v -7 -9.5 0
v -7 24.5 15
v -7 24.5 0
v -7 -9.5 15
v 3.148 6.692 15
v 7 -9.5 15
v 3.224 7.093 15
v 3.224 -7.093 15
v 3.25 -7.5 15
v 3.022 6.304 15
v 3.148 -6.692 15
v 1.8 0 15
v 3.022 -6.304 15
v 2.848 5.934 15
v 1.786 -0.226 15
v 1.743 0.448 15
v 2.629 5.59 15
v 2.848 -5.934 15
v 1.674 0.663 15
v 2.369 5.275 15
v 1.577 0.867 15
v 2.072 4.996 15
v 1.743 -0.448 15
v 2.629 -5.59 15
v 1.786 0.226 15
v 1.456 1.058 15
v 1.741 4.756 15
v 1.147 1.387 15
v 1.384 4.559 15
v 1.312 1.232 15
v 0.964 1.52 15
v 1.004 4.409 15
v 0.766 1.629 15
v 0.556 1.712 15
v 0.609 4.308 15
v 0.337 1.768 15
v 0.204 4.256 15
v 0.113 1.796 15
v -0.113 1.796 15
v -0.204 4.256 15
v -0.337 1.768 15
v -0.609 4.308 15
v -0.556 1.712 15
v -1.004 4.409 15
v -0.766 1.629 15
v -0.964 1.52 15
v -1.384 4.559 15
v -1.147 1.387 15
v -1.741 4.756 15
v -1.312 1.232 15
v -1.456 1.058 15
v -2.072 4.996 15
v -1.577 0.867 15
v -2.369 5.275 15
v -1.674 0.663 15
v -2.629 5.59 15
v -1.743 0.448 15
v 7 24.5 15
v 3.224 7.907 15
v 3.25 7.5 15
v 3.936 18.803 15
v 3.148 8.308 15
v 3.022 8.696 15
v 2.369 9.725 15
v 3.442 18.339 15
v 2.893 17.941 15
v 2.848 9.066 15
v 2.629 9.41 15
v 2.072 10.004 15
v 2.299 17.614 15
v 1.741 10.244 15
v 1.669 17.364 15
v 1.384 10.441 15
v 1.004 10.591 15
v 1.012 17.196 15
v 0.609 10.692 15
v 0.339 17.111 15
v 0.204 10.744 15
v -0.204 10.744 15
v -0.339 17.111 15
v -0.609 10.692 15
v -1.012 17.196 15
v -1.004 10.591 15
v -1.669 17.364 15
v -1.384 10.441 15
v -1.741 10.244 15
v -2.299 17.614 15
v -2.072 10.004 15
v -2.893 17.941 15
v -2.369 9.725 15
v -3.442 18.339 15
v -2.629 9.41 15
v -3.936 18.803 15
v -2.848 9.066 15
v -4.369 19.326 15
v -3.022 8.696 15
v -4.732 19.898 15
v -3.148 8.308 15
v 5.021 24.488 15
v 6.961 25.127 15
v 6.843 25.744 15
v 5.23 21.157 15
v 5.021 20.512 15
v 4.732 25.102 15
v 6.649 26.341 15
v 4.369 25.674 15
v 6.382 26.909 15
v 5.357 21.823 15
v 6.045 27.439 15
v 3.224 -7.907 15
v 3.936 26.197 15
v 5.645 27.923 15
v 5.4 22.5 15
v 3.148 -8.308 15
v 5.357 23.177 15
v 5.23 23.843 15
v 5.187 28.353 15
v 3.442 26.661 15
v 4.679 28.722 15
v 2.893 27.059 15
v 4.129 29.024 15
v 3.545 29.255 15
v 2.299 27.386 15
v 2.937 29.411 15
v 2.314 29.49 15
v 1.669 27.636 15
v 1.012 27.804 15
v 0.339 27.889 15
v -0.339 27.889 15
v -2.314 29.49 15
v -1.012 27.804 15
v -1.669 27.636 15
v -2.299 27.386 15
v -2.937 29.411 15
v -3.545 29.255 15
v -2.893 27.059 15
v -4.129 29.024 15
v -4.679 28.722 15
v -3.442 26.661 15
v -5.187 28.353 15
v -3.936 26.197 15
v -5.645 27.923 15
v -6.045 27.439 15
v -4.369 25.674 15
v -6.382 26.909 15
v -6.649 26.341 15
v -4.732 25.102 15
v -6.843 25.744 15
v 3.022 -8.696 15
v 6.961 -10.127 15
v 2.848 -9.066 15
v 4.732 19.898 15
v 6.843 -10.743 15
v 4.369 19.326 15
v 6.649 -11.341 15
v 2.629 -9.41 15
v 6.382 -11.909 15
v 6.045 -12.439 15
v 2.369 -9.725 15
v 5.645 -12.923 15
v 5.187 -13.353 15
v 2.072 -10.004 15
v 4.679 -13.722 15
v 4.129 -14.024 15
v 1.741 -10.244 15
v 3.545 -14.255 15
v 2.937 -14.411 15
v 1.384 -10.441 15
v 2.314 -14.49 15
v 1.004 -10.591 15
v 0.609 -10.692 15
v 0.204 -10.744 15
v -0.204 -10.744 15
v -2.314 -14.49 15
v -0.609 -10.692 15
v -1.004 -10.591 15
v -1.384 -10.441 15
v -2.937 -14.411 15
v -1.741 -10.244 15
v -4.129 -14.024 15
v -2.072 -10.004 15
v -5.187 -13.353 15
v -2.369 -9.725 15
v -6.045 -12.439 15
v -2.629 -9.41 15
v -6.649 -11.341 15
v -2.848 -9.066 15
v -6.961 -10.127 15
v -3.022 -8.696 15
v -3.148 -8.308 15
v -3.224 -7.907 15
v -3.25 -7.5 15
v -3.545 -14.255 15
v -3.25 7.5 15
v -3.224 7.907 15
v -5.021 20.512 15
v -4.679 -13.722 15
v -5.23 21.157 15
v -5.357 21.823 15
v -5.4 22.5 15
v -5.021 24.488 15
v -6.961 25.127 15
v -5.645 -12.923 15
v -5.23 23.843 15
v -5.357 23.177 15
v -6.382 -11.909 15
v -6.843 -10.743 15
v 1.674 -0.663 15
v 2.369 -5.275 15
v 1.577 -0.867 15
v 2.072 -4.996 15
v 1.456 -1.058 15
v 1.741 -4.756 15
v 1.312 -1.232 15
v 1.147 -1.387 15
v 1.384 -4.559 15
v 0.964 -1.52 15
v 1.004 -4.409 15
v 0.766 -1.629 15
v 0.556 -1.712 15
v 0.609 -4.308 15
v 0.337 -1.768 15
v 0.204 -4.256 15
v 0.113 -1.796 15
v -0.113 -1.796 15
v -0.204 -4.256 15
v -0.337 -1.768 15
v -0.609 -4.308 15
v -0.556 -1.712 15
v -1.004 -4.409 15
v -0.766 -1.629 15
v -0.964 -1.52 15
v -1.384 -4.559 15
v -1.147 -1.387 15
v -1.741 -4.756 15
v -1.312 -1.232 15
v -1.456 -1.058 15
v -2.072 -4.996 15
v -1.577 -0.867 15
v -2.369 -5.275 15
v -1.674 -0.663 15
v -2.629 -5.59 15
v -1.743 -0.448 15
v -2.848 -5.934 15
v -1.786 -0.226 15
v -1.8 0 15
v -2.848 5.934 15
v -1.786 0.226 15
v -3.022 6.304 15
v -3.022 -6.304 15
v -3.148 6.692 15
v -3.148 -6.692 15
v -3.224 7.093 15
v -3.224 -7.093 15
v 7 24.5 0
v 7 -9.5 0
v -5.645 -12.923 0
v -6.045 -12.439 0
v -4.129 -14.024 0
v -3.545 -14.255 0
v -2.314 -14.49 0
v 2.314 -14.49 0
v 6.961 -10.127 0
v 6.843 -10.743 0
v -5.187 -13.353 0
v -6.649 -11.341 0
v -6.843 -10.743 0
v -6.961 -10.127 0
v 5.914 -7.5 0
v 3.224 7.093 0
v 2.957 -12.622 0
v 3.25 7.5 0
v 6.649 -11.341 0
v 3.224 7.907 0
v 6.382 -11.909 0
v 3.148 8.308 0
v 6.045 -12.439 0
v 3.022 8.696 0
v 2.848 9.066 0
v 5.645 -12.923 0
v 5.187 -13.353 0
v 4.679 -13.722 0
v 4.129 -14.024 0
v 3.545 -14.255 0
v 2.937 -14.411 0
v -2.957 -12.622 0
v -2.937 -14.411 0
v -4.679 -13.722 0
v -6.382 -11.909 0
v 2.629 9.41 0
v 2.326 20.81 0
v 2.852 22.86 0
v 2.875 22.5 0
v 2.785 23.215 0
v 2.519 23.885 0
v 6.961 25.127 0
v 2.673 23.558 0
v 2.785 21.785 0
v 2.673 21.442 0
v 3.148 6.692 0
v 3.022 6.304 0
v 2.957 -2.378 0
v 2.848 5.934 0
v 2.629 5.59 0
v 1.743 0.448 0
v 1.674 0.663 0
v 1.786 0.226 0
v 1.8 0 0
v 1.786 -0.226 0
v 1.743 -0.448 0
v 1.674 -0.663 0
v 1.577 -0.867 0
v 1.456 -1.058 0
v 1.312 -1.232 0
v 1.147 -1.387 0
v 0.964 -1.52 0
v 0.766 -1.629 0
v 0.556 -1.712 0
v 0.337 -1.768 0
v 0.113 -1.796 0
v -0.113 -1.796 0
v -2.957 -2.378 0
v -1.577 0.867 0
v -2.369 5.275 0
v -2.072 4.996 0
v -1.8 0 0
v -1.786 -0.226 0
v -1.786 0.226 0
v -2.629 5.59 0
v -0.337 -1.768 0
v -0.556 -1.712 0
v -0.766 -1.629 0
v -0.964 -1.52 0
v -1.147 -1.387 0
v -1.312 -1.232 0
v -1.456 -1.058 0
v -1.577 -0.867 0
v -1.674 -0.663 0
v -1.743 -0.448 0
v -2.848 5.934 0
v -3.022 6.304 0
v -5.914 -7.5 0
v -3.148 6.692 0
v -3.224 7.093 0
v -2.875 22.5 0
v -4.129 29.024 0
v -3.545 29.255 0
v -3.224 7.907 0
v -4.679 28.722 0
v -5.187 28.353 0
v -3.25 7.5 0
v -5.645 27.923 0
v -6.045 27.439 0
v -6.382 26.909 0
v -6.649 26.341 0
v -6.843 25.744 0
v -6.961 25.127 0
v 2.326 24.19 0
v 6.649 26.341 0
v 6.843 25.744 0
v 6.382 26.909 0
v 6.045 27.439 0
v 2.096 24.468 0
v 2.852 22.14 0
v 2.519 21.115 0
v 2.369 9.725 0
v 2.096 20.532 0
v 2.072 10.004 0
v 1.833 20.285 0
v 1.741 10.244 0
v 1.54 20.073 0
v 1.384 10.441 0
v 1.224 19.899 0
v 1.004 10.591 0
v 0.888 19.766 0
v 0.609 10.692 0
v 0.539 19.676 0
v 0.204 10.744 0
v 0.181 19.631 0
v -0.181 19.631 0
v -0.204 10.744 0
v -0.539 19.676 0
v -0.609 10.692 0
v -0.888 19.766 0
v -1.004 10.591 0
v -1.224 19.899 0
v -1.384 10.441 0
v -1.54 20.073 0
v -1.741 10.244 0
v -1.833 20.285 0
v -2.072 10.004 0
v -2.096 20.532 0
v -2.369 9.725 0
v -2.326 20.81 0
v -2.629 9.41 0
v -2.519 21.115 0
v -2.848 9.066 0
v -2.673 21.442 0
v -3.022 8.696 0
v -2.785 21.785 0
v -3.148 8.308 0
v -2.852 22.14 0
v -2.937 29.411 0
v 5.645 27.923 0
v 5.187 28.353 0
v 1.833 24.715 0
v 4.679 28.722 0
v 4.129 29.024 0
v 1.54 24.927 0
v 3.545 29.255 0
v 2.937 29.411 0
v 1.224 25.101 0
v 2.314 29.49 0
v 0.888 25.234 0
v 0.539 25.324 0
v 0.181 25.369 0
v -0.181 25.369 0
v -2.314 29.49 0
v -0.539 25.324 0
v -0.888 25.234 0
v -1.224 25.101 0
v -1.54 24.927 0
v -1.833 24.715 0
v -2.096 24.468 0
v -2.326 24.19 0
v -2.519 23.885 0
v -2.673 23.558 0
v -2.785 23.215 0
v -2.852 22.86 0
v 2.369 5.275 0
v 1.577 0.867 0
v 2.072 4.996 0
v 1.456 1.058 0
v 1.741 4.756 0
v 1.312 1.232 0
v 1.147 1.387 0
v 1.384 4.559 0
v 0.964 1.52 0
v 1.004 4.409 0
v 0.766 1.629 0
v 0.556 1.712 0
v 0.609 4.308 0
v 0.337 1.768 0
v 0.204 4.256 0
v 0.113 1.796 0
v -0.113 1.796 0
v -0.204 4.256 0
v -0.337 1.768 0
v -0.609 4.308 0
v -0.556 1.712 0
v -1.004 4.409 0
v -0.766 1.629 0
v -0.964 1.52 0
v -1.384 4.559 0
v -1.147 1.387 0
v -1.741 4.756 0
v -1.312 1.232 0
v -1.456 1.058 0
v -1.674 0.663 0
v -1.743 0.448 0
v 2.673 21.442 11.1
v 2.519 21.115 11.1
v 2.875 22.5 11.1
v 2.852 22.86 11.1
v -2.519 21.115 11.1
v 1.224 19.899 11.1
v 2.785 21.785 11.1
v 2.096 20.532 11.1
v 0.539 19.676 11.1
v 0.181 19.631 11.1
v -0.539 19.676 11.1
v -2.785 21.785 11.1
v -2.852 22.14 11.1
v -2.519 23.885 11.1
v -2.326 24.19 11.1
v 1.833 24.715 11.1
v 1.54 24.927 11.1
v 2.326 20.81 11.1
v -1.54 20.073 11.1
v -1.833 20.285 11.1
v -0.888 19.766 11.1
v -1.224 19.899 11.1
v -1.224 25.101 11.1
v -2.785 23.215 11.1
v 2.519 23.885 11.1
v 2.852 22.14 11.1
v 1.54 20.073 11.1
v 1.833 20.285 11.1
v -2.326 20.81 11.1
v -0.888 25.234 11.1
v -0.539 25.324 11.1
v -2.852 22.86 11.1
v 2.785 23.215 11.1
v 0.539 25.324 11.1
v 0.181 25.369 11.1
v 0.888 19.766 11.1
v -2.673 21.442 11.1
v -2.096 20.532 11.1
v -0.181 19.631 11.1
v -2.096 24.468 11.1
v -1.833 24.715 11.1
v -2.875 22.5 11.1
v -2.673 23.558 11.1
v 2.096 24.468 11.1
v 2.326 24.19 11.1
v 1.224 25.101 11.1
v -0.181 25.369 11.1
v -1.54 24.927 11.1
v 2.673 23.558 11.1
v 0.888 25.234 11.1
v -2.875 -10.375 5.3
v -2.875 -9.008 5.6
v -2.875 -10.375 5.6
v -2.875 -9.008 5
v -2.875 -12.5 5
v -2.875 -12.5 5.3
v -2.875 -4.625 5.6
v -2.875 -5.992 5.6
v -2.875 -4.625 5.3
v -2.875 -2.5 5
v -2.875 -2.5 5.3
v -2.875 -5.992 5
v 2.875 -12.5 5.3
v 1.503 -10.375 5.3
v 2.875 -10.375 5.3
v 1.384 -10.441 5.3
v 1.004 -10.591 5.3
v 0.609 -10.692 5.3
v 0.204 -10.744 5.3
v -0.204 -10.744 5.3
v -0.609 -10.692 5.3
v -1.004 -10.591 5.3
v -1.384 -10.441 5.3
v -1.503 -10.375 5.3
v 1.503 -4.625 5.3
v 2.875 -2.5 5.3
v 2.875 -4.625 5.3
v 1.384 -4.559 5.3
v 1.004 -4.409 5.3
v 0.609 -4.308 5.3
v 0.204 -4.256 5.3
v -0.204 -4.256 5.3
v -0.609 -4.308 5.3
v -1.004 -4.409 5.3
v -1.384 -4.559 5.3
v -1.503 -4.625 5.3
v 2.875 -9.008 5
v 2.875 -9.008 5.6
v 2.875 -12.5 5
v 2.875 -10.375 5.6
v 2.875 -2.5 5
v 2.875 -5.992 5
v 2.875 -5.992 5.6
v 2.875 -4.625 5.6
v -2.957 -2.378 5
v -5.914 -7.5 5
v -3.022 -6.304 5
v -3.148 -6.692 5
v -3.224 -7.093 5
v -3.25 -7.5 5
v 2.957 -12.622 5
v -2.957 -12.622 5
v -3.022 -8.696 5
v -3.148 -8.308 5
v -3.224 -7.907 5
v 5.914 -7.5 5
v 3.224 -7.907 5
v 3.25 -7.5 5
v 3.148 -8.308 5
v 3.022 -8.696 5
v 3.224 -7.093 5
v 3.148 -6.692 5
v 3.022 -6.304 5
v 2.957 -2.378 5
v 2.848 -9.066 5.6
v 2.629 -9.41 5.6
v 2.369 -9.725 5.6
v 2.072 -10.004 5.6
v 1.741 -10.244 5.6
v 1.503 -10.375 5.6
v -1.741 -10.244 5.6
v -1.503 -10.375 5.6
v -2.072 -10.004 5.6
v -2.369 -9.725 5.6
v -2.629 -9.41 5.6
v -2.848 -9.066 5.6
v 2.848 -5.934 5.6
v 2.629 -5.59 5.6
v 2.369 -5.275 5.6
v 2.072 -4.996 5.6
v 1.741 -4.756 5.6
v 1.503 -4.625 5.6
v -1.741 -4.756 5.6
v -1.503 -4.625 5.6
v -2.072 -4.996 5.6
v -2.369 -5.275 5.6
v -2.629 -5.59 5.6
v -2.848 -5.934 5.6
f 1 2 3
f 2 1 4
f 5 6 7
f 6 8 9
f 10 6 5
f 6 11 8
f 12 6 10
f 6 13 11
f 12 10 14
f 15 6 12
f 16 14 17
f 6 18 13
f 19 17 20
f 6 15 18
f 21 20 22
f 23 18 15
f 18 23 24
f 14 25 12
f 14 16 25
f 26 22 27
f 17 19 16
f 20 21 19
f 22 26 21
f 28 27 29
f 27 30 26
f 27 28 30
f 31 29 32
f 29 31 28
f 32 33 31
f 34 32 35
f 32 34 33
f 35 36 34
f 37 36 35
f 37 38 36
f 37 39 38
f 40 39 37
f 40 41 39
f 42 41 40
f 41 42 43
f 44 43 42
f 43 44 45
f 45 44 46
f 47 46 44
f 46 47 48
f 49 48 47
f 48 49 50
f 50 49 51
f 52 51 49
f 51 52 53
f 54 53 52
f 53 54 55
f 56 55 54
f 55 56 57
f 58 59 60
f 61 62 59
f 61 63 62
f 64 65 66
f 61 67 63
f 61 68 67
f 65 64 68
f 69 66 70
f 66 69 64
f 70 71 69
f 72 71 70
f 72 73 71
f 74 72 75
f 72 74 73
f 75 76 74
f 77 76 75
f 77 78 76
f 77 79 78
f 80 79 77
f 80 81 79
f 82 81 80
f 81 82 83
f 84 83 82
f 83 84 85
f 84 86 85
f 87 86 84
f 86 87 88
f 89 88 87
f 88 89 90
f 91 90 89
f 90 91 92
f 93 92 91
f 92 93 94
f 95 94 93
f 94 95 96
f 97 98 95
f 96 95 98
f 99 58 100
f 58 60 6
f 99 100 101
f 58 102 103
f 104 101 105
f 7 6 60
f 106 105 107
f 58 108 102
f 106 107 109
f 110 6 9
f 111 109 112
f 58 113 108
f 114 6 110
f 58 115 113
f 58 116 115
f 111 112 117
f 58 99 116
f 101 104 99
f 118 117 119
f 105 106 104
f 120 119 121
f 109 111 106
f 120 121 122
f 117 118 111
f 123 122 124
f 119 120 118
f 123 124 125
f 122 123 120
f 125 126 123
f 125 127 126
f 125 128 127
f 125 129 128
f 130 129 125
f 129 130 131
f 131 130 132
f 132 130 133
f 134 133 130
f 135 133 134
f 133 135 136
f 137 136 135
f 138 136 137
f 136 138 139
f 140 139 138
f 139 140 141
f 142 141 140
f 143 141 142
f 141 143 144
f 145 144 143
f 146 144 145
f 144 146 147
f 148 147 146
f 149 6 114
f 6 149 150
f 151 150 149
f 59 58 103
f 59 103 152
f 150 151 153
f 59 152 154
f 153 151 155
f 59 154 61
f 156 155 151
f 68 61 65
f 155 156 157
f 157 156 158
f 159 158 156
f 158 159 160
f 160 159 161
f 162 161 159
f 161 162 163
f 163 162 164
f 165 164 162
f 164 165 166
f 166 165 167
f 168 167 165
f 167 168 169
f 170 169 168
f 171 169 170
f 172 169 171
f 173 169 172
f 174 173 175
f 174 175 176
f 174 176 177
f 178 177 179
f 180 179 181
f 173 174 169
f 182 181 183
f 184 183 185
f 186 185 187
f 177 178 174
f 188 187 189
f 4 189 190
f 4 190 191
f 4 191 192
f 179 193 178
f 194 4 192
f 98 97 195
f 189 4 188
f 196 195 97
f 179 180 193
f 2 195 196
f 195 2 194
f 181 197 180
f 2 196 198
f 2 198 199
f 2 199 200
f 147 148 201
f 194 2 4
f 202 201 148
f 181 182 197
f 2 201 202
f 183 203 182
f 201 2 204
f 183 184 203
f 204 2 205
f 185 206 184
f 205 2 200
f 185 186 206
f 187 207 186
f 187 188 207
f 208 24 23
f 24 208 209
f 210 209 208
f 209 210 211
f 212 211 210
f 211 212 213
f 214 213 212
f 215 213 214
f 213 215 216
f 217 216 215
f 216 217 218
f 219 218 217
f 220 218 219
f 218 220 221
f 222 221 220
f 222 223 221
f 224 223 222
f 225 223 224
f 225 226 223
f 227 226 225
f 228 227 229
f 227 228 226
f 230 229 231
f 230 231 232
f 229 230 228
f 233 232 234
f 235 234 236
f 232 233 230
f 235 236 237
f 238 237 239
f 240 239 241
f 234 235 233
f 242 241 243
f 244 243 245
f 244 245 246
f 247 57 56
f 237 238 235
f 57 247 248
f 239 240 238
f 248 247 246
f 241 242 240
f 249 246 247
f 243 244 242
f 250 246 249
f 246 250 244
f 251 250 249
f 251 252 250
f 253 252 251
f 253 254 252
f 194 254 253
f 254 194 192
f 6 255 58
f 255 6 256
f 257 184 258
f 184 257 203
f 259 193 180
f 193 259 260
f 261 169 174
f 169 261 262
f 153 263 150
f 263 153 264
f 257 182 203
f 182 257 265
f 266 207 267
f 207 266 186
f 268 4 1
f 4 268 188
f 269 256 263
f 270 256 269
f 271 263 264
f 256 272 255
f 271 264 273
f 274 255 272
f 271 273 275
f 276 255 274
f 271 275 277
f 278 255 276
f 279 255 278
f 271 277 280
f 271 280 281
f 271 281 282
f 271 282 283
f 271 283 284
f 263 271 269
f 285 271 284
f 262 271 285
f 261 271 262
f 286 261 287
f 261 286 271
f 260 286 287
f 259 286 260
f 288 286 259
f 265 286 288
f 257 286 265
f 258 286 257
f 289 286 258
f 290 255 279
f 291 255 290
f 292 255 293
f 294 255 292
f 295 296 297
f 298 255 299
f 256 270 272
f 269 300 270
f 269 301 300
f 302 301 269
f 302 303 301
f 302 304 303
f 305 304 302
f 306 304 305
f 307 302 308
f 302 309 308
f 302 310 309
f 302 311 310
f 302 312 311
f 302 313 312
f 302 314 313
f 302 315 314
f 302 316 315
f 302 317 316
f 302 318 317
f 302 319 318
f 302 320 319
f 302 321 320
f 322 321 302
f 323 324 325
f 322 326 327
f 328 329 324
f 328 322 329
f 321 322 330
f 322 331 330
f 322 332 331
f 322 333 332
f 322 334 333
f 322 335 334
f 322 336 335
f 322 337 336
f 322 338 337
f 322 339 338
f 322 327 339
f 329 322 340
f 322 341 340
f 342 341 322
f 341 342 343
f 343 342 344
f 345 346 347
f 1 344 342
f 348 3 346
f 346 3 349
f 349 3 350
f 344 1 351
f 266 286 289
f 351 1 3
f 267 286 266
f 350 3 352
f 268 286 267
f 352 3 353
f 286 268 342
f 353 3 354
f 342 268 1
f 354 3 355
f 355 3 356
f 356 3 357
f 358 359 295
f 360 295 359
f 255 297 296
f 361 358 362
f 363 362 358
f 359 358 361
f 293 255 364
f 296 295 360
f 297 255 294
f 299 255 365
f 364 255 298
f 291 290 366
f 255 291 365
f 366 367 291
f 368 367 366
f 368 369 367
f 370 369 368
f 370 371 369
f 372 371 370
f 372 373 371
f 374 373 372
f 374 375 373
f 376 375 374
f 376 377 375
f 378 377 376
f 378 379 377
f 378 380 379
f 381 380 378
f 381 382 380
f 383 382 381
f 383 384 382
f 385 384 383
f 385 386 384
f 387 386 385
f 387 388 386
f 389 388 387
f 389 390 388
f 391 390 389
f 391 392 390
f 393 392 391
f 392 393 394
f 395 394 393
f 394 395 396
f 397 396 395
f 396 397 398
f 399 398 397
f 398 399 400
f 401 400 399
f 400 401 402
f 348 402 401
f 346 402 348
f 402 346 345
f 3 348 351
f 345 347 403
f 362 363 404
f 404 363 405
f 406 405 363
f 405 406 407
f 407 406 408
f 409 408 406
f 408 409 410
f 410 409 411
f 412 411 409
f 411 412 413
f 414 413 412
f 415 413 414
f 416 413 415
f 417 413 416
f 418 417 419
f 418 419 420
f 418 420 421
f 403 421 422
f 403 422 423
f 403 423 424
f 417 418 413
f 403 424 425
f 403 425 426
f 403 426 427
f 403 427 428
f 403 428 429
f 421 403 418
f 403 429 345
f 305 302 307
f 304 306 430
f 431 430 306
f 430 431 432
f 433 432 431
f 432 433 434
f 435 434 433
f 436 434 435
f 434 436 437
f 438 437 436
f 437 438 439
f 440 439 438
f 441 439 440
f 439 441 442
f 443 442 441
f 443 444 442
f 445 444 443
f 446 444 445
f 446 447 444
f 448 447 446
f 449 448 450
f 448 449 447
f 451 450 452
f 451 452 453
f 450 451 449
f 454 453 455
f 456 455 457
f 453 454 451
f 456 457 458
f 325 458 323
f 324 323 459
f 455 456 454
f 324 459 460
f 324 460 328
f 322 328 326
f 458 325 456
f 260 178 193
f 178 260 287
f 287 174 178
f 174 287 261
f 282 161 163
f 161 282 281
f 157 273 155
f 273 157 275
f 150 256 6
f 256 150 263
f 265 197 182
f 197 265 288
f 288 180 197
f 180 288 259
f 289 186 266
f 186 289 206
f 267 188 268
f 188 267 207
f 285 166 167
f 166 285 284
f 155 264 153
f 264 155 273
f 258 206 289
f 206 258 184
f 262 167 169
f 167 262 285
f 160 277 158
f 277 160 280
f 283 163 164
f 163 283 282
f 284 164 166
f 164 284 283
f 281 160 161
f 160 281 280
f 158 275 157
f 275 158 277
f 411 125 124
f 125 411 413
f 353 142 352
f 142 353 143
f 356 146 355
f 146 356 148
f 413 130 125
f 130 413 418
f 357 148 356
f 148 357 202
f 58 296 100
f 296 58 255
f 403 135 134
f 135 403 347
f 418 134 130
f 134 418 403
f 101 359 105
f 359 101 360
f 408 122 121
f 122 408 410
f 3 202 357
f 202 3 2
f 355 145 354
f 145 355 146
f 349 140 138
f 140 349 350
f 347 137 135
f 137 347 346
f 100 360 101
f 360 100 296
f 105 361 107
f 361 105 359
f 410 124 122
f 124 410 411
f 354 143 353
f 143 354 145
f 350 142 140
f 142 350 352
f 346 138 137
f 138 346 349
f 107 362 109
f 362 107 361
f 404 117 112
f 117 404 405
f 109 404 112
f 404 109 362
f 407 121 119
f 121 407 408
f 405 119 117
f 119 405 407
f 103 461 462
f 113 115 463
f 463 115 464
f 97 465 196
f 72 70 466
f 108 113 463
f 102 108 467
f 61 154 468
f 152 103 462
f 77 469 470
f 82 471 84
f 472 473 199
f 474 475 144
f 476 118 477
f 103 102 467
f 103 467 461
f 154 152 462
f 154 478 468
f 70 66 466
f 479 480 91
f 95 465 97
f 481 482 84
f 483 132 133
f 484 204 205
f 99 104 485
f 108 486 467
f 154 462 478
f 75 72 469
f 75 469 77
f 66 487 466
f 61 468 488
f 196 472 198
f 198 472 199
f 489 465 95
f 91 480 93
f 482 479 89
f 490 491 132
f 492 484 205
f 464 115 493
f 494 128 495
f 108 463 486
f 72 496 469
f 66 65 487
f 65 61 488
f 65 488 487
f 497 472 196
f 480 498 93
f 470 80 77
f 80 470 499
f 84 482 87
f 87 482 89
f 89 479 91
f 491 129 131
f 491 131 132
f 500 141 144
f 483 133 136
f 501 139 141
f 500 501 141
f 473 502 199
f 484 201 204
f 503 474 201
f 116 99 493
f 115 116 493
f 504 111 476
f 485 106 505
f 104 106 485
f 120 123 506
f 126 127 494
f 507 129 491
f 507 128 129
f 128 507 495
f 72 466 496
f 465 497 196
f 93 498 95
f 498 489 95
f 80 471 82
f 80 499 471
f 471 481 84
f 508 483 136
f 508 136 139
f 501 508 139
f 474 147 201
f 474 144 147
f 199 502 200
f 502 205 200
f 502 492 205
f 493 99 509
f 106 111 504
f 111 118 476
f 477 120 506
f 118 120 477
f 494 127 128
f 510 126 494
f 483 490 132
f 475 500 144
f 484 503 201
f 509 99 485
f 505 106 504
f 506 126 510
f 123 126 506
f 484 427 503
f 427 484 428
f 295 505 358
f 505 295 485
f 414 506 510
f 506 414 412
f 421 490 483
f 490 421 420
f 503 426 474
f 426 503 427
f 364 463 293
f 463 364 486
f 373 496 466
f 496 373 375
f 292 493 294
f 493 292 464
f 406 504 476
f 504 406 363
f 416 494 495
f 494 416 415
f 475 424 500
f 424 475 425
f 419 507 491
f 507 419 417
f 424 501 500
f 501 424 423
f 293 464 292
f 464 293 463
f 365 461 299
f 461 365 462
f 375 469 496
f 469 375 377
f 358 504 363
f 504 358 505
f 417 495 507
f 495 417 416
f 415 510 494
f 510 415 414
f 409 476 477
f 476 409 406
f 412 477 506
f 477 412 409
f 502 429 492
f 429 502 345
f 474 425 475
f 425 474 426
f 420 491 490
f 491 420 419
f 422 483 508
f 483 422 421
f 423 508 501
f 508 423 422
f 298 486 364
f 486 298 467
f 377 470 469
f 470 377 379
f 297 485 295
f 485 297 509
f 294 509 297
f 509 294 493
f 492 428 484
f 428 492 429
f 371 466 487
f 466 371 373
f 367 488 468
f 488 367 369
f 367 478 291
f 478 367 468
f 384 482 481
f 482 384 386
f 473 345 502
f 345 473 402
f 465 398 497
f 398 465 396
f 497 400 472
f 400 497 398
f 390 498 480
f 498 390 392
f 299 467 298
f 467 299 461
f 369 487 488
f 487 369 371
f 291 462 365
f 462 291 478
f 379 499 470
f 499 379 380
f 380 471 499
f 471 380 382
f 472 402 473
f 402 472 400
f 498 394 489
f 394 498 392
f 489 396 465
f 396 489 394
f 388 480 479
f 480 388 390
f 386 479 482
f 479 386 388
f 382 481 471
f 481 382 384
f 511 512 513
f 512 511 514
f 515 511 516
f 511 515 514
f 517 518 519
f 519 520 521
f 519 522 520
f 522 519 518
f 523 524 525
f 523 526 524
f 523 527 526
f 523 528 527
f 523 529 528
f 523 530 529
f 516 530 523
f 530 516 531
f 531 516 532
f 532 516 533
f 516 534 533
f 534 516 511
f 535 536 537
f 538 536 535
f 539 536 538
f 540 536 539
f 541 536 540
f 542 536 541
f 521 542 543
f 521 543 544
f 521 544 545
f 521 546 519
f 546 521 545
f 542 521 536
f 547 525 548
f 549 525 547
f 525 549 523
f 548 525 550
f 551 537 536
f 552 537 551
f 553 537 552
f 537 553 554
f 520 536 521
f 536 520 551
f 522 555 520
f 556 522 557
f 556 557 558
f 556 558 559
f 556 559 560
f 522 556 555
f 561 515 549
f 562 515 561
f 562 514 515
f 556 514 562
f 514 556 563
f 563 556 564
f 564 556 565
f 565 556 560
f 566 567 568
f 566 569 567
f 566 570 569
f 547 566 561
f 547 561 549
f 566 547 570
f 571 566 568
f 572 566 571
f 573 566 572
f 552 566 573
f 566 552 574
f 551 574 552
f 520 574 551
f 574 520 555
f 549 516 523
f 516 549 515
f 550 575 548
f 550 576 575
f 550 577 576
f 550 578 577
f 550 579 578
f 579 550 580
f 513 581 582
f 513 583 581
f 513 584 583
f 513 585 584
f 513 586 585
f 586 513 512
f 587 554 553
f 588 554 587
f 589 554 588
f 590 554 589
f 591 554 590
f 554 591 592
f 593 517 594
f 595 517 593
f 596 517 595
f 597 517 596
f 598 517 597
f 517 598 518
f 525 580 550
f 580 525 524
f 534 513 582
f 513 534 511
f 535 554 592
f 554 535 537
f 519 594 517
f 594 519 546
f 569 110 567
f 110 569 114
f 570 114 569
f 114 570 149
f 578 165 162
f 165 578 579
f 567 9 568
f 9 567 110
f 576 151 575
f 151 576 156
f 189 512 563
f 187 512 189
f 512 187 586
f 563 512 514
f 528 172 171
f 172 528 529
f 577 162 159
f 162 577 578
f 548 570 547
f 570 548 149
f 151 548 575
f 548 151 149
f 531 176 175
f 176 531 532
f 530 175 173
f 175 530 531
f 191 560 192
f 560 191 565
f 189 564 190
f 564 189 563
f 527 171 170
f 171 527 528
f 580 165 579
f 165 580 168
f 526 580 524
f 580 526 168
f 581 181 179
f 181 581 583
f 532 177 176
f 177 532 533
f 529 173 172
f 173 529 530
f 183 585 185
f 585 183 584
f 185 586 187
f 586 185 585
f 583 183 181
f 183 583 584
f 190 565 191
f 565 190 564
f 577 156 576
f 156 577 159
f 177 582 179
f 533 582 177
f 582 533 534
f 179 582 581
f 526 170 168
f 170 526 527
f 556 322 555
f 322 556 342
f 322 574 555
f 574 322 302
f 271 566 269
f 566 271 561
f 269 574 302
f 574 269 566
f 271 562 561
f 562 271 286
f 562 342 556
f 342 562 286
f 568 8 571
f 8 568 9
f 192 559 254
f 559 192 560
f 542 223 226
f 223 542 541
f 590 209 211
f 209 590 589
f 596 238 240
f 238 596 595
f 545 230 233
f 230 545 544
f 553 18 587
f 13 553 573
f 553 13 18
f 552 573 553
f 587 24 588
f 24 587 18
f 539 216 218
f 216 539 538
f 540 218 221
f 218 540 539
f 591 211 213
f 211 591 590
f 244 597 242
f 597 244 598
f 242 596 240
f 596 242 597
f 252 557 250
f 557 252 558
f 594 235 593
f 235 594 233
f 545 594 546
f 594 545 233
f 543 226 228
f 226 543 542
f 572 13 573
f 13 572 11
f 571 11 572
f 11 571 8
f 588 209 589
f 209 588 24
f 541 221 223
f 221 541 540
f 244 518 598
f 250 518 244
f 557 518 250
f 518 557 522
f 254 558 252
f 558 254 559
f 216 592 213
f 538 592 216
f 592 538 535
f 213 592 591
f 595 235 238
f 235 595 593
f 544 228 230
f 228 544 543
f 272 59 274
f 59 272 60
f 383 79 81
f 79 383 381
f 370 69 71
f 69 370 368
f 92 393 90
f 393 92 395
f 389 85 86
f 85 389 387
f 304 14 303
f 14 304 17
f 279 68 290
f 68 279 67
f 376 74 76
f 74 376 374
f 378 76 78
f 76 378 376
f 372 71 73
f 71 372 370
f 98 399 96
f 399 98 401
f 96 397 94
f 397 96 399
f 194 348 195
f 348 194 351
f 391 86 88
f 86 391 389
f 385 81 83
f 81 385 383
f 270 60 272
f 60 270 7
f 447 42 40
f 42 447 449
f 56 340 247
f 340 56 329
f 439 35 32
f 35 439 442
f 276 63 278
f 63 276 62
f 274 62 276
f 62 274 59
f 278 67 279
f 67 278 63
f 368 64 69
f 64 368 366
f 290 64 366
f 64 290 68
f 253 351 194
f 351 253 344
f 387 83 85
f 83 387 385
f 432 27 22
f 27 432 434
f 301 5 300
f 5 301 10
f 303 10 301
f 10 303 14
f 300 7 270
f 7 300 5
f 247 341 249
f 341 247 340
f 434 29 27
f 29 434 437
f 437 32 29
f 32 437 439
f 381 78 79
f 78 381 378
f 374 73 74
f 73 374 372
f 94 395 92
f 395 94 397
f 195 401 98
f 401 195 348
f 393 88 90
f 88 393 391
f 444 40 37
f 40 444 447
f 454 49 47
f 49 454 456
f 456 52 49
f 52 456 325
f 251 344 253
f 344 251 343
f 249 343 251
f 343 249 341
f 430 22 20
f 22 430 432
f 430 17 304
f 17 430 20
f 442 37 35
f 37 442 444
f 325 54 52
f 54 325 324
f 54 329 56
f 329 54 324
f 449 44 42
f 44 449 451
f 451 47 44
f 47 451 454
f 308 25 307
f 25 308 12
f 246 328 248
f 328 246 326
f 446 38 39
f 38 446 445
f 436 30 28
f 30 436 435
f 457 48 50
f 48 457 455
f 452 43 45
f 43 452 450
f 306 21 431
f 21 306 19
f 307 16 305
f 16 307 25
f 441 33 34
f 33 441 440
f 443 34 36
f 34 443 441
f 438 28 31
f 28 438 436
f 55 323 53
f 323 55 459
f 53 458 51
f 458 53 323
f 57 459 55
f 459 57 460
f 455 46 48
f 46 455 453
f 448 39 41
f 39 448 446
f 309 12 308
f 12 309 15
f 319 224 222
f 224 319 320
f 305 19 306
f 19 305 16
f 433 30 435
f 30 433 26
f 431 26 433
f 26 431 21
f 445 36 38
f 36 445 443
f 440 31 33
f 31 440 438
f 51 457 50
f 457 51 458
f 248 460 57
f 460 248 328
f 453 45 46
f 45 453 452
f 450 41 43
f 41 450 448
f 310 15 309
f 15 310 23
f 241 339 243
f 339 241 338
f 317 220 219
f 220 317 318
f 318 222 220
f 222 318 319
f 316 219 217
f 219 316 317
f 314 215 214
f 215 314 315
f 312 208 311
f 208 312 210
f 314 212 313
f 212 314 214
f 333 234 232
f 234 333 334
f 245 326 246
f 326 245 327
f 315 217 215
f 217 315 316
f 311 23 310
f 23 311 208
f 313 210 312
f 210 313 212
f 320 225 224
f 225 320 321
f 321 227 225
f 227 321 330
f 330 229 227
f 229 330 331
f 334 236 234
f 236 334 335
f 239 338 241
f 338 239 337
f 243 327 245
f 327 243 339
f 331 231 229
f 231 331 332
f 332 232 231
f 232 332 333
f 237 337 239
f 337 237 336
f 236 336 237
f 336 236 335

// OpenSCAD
$fn = 50;


difference() {
	union() {
		hull() {
			translate(v = [-2.0000000000, 9.5000000000, 0]) {
				cylinder(h = 15, r = 5);
			}
			translate(v = [2.0000000000, 9.5000000000, 0]) {
				cylinder(h = 15, r = 5);
			}
			translate(v = [-2.0000000000, -9.5000000000, 0]) {
				cylinder(h = 15, r = 5);
			}
			translate(v = [2.0000000000, -9.5000000000, 0]) {
				cylinder(h = 15, r = 5);
			}
		}
		translate(v = [0.0000000000, 15.0000000000, 0]) {
			hull() {
				translate(v = [-2.0000000000, 9.5000000000, 0]) {
					cylinder(h = 15, r = 5);
				}
				translate(v = [2.0000000000, 9.5000000000, 0]) {
					cylinder(h = 15, r = 5);
				}
				translate(v = [-2.0000000000, -9.5000000000, 0]) {
					cylinder(h = 15, r = 5);
				}
				translate(v = [2.0000000000, -9.5000000000, 0]) {
					cylinder(h = 15, r = 5);
				}
			}
		}
		translate(v = [0.0000000000, 15.0000000000, 0]) {
			hull() {
				translate(v = [-2.0000000000, 9.5000000000, 0]) {
					cylinder(h = 15, r = 5);
				}
				translate(v = [2.0000000000, 9.5000000000, 0]) {
					cylinder(h = 15, r = 5);
				}
				translate(v = [-2.0000000000, -9.5000000000, 0]) {
					cylinder(h = 15, r = 5);
				}
				translate(v = [2.0000000000, -9.5000000000, 0]) {
					cylinder(h = 15, r = 5);
				}
			}
		}
	}
	union() {
		translate(v = [0.0000000000, 22.5000000000, 15]) {
			rotate(a = [0, 0, 0]) {
				difference() {
					union() {
						#translate(v = [0, 0, -15.0000000000]) {
							cylinder(h = 15, r = 2.6000000000);
						}
						#translate(v = [0, 0, -3.9000000000]) {
							cylinder(h = 3.9000000000, r1 = 2.8750000000, r2 = 5.4000000000);
						}
						#translate(v = [0, 0, -15.0000000000]) {
							cylinder(h = 15, r = 2.8750000000);
						}
						#translate(v = [0, 0, -15.0000000000]) {
							cylinder(h = 15, r = 2.6000000000);
						}
					}
					union();
				}
			}
		}
		translate(v = [0.0000000000, 22.5000000000, 15]) {
			rotate(a = [0, 0, 0]) {
				difference() {
					union() {
						#translate(v = [0, 0, -15.0000000000]) {
							cylinder(h = 15, r = 2.6000000000);
						}
						#translate(v = [0, 0, -3.9000000000]) {
							cylinder(h = 3.9000000000, r1 = 2.8750000000, r2 = 5.4000000000);
						}
						#translate(v = [0, 0, -15.0000000000]) {
							cylinder(h = 15, r = 2.8750000000);
						}
						#translate(v = [0, 0, -15.0000000000]) {
							cylinder(h = 15, r = 2.6000000000);
						}
					}
					union();
				}
			}
		}
		translate(v = [0.0000000000, -7.5000000000, 0]) {
			rotate(a = [0, 0, 0]) {
				difference() {
					union() {
						#translate(v = [-2.8750000000, -5.0000000000, -0.3000000000]) {
							cube(size = [5.7500000000, 10, 0.3000000000]);
						}
						#translate(v = [-2.8750000000, -2.8750000000, -0.6000000000]) {
							cube(size = [5.7500000000, 5.7500000000, 0.3000000000]);
						}
						#translate(v = [-2.8750000000, -5.0000000000, 5]) {
							cube(size = [5.7500000000, 10, 0.3000000000]);
						}
						#translate(v = [-2.8750000000, -2.8750000000, 5.3000000000]) {
							cube(size = [5.7500000000, 5.7500000000, 0.3000000000]);
						}
						#translate(v = [0, 0, -100.0000000000]) {
							cylinder(h = 200, r = 3.2500000000);
						}
						#linear_extrude(height = 5) {
							polygon(points = [[5.9142500000, 0.0000000000], [2.9571250000, 5.1218907443], [-2.9571250000, 5.1218907443], [-5.9142500000, 0.0000000000], [-2.9571250000, -5.1218907443], [2.9571250000, -5.1218907443]]);
						}
						#translate(v = [-2.8750000000, -5.0000000000, -0.3000000000]) {
							cube(size = [5.7500000000, 10, 0.3000000000]);
						}
						#translate(v = [-2.8750000000, -2.8750000000, -0.6000000000]) {
							cube(size = [5.7500000000, 5.7500000000, 0.3000000000]);
						}
						#translate(v = [-2.8750000000, -5.0000000000, 5]) {
							cube(size = [5.7500000000, 10, 0.3000000000]);
						}
						#translate(v = [-2.8750000000, -2.8750000000, 5.3000000000]) {
							cube(size = [5.7500000000, 5.7500000000, 0.3000000000]);
						}
						#translate(v = [0, 0, -100.0000000000]) {
							cylinder(h = 200, r = 3.2500000000);
						}
						#translate(v = [-2.8750000000, -5.0000000000, -0.3000000000]) {
							cube(size = [5.7500000000, 10, 0.3000000000]);
						}
						#translate(v = [-2.8750000000, -2.8750000000, -0.6000000000]) {
							cube(size = [5.7500000000, 5.7500000000, 0.3000000000]);
						}
						#translate(v = [-2.8750000000, -5.0000000000, 5]) {
							cube(size = [5.7500000000, 10, 0.3000000000]);
						}
						#translate(v = [-2.8750000000, -2.8750000000, 5.3000000000]) {
							cube(size = [5.7500000000, 5.7500000000, 0.3000000000]);
						}
						#translate(v = [0, 0, -100.0000000000]) {
							cylinder(h = 200, r = 3.2500000000);
						}
					}
					union();
				}
			}
		}
		translate(v = [0.0000000000, -7.5000000000, 0]) {
			translate(v = [0, 0, -100]) {
				cylinder(h = 200, r = 3.2500000000);
			}
		}
		translate(v = [0.0000000000, 7.5000000000, 0]) {
			translate(v = [0, 0, -100]) {
				cylinder(h = 200, r = 3.2500000000);
			}
		}
		translate(v = [0.0000000000, -7.5000000000, 0]) {
			translate(v = [0, 0, -100]) {
				cylinder(h = 200, r = 1.8000000000);
			}
		}
		translate(v = [0, 0, -100]) {
			cylinder(h = 200, r = 1.8000000000);
		}
		translate(v = [0.0000000000, 7.5000000000, 0]) {
			translate(v = [0, 0, -100]) {
				cylinder(h = 200, r = 1.8000000000);
			}
		}
	}
}
